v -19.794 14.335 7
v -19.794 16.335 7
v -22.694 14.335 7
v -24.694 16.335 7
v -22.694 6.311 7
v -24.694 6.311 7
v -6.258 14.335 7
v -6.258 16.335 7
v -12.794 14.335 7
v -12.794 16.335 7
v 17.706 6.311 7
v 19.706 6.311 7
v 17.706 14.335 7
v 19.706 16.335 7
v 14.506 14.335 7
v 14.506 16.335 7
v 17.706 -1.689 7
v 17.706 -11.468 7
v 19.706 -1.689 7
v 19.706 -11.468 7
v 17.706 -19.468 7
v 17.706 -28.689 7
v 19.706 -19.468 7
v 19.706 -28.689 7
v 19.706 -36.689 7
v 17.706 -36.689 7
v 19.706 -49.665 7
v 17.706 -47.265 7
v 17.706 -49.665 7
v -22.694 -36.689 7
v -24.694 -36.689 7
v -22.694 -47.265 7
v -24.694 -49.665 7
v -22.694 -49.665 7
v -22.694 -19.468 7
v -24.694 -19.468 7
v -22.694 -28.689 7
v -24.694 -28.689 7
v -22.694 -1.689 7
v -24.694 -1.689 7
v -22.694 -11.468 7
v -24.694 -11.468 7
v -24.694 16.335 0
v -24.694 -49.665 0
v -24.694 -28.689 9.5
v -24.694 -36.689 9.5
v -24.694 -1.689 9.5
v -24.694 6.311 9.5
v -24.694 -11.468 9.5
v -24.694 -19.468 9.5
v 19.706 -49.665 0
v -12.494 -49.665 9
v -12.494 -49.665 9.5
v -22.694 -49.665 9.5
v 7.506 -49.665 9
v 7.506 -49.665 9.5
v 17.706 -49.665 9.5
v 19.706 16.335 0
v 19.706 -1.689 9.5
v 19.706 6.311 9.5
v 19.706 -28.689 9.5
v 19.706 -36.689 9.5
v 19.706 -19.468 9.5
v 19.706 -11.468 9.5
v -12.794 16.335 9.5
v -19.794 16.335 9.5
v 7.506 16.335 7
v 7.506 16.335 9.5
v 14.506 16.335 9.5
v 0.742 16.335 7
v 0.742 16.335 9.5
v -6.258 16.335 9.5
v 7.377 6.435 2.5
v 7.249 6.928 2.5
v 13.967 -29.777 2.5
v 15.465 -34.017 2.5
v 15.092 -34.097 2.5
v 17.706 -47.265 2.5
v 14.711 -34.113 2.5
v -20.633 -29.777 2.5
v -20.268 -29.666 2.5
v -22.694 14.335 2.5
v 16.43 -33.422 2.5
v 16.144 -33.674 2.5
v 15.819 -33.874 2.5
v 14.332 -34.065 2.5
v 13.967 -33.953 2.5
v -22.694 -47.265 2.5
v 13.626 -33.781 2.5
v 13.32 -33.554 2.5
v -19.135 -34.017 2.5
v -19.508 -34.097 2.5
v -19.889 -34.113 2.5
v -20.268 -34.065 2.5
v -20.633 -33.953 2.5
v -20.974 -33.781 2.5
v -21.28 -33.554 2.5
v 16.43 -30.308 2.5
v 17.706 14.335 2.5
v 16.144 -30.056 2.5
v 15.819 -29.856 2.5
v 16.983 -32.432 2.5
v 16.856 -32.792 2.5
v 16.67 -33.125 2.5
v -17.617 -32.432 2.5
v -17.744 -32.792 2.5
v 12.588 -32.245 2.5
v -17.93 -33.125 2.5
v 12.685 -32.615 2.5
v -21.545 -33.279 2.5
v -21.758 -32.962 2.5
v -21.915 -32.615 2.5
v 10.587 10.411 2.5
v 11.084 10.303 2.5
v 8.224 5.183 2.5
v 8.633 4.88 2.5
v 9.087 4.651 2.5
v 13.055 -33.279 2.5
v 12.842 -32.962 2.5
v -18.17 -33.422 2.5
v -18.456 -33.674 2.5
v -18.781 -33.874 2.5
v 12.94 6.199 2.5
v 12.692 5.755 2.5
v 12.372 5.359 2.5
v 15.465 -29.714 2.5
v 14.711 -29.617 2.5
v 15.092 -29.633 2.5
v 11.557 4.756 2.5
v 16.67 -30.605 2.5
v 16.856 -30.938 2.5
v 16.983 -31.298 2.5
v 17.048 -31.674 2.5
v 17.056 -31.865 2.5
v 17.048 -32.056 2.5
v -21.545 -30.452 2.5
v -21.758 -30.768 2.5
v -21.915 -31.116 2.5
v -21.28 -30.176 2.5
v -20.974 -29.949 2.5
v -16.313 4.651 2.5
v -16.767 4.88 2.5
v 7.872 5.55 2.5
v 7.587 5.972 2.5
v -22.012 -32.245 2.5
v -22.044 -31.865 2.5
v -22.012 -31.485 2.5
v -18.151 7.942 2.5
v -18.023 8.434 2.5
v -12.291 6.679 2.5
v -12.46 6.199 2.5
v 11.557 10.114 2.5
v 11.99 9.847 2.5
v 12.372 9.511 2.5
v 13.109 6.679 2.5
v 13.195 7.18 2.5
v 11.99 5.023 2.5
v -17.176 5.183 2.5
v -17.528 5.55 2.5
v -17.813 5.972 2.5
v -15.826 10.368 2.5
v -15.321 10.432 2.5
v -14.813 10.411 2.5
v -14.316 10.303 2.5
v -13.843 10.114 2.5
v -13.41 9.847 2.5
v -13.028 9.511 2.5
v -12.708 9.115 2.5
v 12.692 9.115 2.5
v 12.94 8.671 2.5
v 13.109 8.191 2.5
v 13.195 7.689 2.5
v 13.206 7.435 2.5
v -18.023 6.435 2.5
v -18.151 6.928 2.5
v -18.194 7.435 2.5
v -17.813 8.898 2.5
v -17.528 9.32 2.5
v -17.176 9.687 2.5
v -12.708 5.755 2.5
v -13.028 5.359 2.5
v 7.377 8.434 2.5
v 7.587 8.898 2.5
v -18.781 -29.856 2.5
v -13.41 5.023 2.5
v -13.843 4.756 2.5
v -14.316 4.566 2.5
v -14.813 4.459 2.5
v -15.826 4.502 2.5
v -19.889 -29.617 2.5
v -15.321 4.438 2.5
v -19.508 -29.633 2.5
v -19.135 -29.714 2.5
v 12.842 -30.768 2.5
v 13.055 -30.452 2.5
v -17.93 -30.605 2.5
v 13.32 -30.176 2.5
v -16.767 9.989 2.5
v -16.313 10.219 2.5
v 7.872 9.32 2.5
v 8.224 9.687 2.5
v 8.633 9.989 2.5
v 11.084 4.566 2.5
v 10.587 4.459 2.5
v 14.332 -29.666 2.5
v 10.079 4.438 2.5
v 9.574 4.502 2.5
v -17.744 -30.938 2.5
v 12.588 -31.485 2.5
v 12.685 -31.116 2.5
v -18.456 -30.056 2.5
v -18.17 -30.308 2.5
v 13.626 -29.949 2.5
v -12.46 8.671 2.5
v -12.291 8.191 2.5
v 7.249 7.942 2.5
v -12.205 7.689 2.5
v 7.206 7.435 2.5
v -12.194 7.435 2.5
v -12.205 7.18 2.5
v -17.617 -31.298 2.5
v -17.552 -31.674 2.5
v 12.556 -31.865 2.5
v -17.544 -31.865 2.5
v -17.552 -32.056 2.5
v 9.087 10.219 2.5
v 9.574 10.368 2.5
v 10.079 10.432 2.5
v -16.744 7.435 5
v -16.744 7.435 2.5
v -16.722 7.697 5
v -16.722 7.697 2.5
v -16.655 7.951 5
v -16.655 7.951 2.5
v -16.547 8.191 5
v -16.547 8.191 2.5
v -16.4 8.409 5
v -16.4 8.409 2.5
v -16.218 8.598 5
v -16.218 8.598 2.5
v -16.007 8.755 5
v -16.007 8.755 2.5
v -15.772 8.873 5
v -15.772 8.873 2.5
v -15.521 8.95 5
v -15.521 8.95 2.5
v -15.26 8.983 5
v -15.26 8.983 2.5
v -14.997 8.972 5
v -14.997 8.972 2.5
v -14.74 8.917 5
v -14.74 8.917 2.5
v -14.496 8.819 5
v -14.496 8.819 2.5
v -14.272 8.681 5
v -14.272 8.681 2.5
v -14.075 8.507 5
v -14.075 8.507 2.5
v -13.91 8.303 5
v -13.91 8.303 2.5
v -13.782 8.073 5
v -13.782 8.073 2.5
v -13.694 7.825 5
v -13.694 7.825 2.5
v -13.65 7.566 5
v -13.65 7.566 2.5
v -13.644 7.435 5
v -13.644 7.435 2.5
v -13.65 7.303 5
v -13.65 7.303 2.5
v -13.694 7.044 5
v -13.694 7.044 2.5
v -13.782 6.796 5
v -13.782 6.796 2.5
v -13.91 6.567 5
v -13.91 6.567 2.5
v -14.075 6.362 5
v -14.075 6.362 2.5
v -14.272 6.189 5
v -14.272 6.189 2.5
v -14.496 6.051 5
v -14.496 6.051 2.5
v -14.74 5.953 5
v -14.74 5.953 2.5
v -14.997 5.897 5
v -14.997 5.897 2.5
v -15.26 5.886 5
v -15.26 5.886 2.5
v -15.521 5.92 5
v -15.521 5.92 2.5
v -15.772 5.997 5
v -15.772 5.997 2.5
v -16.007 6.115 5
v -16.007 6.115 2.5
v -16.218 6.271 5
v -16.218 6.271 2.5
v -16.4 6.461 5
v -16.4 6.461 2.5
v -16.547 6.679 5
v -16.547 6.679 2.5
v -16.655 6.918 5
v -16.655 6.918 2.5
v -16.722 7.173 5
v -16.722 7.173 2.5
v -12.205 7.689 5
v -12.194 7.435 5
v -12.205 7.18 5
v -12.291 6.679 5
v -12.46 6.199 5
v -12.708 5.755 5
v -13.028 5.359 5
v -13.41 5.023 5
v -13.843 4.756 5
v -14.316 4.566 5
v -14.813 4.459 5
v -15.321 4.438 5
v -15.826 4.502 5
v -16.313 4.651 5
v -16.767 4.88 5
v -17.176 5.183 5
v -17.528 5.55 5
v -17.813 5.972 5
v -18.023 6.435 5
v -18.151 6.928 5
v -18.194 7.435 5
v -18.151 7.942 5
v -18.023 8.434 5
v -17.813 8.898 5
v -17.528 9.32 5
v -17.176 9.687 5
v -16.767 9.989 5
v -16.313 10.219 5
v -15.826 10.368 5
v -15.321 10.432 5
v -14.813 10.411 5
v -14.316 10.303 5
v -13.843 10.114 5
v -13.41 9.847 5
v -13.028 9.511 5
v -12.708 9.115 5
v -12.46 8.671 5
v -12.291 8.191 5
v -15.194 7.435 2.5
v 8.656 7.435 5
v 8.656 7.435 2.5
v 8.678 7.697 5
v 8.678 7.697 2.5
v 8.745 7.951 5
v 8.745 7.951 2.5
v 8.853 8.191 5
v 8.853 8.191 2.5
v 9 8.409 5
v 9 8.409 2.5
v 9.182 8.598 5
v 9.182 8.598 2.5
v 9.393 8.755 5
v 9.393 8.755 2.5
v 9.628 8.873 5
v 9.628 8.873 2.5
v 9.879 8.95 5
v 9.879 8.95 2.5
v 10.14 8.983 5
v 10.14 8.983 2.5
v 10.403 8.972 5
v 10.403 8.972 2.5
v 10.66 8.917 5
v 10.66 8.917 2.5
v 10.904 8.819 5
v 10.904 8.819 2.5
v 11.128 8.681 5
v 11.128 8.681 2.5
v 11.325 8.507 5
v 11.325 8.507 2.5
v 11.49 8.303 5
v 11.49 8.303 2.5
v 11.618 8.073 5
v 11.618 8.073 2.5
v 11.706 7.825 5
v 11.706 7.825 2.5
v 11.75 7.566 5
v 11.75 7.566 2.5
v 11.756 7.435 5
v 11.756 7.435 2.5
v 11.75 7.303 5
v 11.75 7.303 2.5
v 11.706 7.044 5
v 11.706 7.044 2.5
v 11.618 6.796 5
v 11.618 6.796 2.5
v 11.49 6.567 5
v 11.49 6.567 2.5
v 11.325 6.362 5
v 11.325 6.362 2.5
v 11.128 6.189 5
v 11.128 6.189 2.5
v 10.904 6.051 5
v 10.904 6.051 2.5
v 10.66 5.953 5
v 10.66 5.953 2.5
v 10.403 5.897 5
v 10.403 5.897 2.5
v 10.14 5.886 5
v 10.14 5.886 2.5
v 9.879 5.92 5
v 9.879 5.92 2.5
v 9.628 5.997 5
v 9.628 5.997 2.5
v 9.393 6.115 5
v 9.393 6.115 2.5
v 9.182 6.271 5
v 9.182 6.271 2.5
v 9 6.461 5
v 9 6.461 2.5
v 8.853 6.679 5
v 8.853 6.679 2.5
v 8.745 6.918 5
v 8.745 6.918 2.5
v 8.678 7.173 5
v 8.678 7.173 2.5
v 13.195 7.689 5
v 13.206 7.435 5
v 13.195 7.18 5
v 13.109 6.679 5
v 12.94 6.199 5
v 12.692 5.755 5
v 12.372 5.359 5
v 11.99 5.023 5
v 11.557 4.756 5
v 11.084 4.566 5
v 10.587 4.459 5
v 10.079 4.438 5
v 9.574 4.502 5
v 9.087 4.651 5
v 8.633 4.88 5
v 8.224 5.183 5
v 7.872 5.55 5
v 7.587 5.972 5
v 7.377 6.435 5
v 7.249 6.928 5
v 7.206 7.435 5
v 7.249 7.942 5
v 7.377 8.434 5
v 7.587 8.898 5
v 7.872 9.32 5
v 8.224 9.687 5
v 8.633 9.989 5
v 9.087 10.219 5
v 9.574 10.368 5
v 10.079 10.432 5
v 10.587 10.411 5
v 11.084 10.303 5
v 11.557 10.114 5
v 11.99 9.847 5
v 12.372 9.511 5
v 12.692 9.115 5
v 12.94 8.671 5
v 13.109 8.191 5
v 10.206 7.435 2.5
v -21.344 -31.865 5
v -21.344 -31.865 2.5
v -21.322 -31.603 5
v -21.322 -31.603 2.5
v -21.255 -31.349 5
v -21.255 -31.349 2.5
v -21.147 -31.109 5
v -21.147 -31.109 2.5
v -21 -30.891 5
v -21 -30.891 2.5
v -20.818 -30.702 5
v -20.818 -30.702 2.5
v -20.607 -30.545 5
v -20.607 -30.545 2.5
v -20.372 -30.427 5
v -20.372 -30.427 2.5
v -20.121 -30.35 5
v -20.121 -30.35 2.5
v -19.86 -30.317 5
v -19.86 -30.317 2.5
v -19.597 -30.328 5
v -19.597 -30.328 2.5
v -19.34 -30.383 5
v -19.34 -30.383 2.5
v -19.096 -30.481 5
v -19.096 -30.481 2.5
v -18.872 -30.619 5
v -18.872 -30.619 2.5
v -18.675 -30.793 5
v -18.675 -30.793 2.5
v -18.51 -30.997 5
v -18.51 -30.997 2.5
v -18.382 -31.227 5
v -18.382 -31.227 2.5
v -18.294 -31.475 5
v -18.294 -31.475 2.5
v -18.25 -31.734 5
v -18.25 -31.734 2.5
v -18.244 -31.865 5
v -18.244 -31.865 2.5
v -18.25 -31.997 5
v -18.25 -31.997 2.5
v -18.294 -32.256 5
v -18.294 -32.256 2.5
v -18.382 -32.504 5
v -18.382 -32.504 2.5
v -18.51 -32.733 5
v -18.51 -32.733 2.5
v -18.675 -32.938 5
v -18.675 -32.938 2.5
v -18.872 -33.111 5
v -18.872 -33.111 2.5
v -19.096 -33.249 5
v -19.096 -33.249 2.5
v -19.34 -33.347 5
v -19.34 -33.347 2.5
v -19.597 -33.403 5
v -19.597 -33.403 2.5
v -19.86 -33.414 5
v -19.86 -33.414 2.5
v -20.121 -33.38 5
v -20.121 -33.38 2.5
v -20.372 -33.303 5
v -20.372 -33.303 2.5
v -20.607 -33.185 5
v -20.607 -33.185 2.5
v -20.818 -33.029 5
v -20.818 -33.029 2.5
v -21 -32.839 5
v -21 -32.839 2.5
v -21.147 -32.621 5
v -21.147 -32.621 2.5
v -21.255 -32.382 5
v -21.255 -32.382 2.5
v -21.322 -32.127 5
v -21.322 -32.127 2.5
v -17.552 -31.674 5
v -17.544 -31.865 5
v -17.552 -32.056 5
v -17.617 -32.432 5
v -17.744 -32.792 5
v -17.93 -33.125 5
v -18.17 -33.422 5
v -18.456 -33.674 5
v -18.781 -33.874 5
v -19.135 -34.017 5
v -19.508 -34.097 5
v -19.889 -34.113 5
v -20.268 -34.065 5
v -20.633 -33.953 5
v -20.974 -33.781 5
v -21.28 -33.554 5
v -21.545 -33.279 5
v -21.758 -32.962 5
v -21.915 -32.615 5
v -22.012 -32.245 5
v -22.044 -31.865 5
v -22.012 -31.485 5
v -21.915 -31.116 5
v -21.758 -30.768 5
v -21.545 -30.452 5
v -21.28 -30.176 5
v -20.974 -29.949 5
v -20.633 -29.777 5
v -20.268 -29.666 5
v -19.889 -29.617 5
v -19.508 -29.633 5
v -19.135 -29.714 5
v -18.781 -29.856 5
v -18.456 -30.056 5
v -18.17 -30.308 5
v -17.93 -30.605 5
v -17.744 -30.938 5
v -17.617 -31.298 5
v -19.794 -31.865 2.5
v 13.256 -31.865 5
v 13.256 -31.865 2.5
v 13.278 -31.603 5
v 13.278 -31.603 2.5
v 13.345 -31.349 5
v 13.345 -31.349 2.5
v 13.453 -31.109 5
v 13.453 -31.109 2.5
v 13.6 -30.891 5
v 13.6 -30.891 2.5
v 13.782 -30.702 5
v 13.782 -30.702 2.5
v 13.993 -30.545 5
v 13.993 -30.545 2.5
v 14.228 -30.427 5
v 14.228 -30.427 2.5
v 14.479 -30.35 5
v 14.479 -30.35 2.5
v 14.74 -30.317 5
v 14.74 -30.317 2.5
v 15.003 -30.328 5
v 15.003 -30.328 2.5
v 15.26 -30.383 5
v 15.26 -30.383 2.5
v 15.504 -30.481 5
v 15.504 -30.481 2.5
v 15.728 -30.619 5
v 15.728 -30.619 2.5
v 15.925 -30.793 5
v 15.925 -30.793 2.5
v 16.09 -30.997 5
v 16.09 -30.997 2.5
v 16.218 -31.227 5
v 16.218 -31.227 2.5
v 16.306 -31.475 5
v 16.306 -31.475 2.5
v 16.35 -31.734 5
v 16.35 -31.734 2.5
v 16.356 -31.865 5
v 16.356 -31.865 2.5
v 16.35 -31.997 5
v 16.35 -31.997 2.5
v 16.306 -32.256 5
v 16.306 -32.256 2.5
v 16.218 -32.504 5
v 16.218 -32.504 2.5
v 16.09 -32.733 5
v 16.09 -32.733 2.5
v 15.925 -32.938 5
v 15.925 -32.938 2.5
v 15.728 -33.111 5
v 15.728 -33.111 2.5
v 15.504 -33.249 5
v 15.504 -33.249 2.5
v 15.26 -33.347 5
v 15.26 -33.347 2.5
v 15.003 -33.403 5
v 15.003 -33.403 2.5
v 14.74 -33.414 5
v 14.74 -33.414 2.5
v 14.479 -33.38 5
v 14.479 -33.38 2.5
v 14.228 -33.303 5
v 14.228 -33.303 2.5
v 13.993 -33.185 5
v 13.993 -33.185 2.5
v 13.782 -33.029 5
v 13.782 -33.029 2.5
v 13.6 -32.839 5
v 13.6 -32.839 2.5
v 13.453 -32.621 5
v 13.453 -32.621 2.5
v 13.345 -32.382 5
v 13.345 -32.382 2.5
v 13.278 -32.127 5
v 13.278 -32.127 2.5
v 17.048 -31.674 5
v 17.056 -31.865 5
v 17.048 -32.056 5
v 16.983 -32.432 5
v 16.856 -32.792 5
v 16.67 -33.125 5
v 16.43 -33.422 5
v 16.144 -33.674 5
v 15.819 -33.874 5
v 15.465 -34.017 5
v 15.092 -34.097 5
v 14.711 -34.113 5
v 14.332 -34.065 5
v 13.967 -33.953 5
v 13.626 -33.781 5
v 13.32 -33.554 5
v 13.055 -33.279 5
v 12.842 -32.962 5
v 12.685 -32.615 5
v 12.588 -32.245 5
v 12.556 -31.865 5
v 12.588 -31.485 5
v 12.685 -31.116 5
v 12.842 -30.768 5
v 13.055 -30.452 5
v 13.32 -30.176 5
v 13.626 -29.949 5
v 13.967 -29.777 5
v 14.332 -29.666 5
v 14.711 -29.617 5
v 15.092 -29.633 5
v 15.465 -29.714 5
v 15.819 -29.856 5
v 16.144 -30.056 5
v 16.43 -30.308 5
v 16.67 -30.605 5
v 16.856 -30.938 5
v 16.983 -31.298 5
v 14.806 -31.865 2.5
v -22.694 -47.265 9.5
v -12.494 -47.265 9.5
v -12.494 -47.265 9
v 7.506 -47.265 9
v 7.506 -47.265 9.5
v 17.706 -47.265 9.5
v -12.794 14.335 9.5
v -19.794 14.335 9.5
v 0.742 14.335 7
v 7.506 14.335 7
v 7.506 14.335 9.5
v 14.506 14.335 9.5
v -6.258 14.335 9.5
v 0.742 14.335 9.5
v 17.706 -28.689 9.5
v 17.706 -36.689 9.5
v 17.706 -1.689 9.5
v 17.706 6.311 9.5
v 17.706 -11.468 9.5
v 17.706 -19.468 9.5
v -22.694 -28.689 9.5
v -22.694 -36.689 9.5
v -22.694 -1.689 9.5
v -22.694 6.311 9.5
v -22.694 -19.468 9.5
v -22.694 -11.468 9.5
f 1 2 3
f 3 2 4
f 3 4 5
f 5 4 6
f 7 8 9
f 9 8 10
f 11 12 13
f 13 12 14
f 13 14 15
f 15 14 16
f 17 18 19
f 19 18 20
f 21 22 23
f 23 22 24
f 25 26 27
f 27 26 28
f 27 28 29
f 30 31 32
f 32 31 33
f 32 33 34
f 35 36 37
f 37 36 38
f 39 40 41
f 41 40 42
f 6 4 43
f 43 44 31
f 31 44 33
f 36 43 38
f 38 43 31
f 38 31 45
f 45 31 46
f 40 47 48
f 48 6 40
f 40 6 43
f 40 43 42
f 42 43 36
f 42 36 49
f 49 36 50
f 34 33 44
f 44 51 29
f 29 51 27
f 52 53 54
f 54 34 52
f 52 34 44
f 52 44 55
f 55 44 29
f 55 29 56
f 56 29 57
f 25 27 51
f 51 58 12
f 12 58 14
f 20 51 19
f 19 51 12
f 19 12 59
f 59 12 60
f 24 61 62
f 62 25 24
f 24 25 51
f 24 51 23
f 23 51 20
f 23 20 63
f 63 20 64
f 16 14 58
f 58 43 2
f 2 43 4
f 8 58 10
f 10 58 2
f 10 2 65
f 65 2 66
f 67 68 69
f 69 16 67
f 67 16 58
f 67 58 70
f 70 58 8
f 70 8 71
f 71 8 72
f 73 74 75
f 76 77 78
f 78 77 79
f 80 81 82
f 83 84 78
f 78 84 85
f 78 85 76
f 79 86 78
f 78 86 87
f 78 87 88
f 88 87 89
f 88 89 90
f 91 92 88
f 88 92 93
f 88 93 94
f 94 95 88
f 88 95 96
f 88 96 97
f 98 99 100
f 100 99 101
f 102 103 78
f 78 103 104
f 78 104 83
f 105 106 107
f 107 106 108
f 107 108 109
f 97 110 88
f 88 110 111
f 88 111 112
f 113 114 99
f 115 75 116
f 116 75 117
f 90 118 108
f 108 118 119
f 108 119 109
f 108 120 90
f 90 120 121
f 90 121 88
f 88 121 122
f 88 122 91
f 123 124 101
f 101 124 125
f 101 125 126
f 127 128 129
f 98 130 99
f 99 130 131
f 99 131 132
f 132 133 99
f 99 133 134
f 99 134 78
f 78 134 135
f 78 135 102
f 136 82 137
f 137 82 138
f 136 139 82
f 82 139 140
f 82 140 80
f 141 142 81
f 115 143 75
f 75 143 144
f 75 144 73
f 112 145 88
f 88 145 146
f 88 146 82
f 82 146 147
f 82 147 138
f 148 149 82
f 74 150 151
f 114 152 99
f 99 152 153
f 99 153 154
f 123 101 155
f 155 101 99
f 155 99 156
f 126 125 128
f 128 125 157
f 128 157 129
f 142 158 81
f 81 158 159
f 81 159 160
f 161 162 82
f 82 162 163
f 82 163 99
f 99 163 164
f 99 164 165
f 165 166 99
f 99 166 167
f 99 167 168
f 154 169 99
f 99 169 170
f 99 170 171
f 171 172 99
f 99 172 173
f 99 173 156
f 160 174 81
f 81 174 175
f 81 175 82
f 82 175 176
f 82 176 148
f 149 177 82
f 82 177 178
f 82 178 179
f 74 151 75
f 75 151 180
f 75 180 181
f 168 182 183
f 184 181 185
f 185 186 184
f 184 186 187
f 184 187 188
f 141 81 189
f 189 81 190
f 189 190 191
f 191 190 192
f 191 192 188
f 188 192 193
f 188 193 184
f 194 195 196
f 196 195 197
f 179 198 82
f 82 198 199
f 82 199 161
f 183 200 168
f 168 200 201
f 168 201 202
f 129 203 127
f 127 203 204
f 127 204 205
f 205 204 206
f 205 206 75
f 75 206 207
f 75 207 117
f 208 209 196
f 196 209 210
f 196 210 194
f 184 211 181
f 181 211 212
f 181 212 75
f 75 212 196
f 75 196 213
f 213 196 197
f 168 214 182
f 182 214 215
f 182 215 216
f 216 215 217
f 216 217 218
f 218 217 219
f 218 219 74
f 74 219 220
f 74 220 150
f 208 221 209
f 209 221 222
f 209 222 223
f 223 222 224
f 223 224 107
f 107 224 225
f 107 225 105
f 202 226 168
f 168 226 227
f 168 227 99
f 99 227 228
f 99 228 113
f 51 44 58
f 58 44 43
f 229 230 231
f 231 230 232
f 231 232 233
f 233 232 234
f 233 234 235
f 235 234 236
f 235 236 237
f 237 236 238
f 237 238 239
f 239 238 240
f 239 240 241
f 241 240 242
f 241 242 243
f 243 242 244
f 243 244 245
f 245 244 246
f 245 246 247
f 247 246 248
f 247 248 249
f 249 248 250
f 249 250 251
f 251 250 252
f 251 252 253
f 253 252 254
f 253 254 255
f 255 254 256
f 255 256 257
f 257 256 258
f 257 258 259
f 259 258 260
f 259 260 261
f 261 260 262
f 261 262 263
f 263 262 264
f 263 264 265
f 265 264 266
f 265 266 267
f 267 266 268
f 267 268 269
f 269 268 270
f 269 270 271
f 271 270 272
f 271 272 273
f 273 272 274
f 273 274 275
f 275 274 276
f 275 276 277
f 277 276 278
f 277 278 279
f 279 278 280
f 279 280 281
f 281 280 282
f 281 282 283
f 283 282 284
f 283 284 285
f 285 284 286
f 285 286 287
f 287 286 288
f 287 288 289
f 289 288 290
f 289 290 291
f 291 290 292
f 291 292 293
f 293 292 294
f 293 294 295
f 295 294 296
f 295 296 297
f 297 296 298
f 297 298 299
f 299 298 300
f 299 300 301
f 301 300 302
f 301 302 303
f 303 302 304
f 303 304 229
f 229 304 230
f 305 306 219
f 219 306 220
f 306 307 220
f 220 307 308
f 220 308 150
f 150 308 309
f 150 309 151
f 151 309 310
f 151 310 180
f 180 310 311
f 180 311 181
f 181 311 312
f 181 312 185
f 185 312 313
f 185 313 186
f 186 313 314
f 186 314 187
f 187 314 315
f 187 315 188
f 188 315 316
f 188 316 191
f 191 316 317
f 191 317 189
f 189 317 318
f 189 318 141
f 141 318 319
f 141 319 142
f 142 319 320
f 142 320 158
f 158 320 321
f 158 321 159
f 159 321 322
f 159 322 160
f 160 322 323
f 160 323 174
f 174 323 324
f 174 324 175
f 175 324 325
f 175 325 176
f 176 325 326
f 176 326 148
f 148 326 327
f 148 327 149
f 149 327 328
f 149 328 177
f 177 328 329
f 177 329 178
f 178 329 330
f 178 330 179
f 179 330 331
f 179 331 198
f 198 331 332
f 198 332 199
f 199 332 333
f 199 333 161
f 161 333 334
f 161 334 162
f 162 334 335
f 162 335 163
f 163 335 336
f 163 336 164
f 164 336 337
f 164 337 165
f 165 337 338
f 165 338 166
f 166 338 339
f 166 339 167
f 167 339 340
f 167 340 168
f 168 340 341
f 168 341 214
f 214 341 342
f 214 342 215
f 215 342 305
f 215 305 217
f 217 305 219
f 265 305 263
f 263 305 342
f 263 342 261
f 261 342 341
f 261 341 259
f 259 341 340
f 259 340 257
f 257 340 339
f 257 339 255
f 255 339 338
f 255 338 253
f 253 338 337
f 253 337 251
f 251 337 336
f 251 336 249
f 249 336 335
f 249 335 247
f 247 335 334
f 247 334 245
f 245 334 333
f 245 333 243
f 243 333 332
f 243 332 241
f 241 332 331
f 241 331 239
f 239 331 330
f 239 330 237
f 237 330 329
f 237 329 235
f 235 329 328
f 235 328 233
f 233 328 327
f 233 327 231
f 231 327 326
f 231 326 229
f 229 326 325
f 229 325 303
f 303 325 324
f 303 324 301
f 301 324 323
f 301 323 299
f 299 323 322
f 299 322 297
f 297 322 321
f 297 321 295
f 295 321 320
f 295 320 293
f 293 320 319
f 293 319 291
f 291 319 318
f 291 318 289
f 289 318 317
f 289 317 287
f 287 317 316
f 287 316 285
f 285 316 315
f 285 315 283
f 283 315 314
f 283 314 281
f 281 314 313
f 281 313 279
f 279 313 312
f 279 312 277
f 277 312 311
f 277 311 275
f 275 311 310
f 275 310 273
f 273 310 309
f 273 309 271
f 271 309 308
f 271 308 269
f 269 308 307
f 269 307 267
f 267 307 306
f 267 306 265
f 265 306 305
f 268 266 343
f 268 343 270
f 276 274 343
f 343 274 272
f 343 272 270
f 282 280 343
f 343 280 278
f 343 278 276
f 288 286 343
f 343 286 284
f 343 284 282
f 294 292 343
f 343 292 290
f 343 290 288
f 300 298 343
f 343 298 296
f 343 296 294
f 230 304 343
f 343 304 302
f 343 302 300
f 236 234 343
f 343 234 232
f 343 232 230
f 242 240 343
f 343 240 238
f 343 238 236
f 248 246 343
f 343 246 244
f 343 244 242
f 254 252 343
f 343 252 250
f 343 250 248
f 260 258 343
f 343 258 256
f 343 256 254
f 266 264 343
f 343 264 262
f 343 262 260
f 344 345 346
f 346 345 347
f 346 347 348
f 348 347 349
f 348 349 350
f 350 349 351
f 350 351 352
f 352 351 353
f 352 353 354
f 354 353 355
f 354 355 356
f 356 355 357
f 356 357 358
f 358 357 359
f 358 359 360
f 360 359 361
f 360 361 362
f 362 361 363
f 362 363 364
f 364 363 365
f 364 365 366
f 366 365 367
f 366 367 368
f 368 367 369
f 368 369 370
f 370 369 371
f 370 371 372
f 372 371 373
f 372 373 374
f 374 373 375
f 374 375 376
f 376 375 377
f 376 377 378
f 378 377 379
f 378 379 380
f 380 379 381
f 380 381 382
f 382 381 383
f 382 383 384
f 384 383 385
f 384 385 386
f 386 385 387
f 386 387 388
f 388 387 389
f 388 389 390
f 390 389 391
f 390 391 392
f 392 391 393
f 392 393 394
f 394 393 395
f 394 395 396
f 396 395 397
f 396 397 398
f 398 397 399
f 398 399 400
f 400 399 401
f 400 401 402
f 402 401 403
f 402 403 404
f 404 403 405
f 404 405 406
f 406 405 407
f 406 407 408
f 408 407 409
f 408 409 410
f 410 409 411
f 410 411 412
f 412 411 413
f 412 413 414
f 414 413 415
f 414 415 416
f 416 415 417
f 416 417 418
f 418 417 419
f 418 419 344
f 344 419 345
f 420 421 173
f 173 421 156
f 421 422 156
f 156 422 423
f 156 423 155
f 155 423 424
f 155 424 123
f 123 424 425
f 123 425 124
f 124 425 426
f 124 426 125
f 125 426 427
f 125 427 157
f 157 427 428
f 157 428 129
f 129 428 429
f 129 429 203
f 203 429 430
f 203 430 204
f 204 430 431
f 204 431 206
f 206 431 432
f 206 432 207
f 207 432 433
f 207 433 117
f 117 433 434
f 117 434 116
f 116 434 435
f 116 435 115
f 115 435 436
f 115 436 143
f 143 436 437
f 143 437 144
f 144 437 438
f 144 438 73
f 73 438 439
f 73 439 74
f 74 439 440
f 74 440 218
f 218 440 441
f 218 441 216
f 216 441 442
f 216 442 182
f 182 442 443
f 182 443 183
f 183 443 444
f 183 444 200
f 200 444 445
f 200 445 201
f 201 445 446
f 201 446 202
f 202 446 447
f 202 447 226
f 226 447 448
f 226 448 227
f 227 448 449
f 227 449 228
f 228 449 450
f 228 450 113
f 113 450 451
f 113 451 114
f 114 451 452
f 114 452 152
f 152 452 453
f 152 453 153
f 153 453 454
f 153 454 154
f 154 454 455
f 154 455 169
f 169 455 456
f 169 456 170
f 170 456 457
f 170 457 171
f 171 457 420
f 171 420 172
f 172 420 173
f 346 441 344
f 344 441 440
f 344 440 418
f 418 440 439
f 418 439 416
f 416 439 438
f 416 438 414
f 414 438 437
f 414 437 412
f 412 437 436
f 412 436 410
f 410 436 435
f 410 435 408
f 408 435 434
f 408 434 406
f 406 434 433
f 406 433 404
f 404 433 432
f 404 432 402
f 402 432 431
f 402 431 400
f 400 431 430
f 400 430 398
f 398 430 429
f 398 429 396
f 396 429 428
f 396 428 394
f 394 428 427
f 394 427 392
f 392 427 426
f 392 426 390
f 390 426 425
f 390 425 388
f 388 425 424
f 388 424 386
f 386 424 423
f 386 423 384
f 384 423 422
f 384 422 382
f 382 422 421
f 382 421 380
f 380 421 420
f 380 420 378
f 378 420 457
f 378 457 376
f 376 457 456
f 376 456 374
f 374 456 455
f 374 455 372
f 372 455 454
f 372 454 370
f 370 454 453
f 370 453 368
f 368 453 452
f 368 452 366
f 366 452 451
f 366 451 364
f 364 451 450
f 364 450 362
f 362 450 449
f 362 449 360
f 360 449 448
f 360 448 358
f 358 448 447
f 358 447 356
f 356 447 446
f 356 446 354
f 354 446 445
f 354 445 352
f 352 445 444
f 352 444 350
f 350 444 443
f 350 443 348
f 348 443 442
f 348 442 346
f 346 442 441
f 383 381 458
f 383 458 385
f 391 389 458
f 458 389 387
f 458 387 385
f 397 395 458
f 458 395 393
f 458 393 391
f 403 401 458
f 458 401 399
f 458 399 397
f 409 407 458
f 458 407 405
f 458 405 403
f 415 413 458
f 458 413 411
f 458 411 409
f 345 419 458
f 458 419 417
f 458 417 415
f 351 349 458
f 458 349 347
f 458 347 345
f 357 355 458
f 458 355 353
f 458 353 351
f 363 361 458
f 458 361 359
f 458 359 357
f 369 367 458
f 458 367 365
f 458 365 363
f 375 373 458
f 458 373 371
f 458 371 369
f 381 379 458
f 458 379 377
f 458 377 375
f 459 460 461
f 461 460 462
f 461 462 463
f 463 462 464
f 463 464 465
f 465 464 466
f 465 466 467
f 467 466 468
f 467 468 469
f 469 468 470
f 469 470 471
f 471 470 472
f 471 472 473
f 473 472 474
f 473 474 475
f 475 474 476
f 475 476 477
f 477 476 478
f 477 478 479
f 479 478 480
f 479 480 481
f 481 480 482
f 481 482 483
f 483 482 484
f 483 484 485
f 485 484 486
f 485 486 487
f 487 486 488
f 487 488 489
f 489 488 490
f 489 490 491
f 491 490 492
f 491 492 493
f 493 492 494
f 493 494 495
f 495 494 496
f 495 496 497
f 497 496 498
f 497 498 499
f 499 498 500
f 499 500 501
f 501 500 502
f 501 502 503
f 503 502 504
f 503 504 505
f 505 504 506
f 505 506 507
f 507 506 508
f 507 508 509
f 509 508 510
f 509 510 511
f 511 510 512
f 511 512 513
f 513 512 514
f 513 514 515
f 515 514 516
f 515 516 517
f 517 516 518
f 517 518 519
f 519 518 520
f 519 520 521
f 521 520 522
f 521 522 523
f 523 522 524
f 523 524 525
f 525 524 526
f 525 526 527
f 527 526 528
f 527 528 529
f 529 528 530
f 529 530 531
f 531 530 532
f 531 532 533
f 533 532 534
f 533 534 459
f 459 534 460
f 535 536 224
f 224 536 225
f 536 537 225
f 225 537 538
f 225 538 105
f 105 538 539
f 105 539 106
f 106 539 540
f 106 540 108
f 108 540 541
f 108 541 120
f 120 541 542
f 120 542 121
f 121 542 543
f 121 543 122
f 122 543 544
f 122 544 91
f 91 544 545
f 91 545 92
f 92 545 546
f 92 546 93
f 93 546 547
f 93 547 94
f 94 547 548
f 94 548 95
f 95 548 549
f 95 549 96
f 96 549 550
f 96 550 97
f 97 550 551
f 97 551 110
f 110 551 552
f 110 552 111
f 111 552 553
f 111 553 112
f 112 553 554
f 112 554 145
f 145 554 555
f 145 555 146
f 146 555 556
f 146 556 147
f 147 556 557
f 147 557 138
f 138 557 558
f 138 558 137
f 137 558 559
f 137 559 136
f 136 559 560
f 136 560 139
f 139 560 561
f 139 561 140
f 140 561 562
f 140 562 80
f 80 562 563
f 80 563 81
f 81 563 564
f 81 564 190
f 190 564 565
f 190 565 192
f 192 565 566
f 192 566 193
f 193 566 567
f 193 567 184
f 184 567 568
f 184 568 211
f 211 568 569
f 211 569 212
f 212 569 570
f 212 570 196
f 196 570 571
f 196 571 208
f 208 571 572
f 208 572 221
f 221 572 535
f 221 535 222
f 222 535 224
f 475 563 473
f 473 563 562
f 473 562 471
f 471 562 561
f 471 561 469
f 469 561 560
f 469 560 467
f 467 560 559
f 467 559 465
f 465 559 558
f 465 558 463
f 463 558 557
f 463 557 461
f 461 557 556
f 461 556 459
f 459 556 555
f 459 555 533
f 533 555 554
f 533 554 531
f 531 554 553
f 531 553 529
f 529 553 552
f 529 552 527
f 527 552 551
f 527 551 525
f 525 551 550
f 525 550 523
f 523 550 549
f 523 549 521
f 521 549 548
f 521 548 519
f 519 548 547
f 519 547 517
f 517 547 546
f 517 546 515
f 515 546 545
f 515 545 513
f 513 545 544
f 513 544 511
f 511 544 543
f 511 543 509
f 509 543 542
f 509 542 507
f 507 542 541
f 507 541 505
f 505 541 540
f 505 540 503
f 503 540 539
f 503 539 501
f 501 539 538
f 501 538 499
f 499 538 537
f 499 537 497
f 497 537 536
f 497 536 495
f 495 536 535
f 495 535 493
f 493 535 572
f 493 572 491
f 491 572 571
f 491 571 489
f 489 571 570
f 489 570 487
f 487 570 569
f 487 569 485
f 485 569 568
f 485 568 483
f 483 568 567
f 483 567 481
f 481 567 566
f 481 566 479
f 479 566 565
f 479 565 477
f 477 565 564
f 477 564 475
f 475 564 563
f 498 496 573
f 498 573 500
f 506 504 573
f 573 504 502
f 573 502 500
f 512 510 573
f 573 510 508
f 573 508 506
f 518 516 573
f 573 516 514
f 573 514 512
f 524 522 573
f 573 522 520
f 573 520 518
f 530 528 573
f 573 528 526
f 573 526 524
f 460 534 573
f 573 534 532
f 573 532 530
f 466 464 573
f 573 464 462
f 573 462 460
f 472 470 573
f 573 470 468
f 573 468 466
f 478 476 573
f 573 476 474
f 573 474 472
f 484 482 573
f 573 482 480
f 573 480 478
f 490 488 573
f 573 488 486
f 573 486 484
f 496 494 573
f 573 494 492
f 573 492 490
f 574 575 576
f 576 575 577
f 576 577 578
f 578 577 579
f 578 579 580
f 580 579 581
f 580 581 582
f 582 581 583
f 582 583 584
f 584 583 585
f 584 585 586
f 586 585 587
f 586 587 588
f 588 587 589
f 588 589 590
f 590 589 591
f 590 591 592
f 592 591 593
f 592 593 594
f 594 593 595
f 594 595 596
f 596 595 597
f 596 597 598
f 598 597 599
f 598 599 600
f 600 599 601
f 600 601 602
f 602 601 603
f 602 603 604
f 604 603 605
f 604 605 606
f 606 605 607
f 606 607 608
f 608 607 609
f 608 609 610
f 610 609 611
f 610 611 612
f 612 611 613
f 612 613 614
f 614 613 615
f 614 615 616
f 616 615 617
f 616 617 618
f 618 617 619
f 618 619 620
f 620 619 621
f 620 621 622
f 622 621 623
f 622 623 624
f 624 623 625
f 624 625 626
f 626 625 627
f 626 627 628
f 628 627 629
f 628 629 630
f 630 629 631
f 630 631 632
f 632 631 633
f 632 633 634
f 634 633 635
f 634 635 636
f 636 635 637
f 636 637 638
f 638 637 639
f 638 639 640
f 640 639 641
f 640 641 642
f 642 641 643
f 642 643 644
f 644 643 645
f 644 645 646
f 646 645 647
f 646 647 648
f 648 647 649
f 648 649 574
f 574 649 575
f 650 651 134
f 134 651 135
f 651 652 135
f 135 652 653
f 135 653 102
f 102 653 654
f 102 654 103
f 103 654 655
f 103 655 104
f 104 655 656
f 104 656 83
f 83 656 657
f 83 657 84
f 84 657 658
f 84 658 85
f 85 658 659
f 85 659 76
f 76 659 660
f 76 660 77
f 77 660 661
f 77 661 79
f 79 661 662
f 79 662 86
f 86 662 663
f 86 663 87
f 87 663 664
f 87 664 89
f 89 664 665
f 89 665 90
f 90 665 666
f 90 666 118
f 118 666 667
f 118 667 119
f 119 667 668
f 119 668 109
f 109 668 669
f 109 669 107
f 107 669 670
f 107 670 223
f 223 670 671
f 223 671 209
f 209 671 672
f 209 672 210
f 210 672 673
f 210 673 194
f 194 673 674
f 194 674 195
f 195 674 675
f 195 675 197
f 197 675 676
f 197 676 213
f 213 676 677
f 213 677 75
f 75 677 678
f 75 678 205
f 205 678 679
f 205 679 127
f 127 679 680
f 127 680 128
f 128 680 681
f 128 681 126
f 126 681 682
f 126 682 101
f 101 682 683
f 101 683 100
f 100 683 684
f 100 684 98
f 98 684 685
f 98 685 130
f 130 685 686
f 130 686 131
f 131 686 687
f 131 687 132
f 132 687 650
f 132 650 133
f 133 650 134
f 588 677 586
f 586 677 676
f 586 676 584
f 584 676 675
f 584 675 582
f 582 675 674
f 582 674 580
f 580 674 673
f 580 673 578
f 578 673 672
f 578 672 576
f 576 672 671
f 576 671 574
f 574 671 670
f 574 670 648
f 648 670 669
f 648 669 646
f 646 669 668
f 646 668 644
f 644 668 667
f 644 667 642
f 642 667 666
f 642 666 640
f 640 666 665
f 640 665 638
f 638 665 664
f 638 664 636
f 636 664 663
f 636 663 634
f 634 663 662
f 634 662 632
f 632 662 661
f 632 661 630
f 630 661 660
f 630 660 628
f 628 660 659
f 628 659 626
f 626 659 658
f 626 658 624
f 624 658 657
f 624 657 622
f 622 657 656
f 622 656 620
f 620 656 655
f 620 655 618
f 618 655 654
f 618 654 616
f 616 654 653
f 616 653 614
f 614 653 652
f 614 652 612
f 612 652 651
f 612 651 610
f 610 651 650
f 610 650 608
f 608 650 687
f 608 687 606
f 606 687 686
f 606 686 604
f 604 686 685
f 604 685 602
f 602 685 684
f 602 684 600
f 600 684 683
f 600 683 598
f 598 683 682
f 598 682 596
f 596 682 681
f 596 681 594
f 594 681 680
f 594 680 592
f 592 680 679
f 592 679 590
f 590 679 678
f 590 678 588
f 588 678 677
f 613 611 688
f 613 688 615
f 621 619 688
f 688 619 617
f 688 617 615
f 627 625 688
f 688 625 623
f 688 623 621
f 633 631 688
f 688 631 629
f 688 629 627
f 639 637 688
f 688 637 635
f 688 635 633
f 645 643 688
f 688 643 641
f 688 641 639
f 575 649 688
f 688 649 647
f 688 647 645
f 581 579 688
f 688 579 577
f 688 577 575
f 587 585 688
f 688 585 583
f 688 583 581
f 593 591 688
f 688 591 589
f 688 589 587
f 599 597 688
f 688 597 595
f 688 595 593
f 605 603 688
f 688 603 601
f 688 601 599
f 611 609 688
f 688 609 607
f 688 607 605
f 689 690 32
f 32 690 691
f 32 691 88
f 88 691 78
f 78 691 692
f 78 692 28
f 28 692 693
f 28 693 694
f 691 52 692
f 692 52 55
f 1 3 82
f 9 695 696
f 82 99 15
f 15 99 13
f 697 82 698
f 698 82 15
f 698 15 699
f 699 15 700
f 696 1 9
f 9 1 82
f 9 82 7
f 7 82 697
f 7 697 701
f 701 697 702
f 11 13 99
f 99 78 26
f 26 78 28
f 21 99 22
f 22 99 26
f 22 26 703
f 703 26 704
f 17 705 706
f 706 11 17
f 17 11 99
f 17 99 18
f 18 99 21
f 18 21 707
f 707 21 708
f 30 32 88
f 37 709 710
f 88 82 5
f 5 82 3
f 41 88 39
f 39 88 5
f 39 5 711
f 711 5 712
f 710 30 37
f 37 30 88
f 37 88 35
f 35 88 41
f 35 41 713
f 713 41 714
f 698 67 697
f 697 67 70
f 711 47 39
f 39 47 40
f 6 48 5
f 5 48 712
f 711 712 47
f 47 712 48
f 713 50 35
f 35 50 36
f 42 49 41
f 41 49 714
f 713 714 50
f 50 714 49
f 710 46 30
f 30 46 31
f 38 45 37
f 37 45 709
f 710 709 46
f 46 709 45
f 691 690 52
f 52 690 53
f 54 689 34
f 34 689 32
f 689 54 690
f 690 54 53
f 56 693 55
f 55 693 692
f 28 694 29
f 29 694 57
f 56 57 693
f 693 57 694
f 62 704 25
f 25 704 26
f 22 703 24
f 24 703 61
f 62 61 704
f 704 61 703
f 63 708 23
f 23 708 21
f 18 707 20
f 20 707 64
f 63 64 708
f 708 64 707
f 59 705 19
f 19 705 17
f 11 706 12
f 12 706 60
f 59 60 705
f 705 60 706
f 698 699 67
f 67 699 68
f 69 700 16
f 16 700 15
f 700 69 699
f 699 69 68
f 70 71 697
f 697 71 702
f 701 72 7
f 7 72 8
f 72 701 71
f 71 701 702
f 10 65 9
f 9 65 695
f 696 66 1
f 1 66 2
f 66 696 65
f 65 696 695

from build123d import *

# Parameters (mm, degrees)
ESBO_O1_W                = 44.4
ESBO_O1_H                = 66
RESSALTO_EXTRUS_O1_DEPTH = 2.5
ESBO_O1_3_R              = 3
ESBO_O1_3_R_2            = 1.55
ESBO_O1_3_R_3            = 2.25
RESSALTO_EXTRUS_O2_DEPTH = 5
ESBO_O1_4_W              = 20
ESBO_O1_4_H              = 2.4
RESSALTO_EXTRUS_O3_DEPTH = 9
ESBO_O1_5_W              = 2
ESBO_O1_5_H              = 8
ESBO_O1_5_H_2            = 9.779719316
ESBO_O1_5_H_3            = 9.220608646
ESBO_O1_5_W_2            = 10.2
ESBO_O1_5_H_4            = 2.4
ESBO_O1_5_W_3            = 7
ESBO_O1_5_H_5            = 2
ESBO_O1_5_W_4            = 6.764123849
ESBO_O1_5_W_5            = 6.535876151
RESSALTO_EXTRUS_O4_DEPTH = 7
ESBO_O1_6_W              = 2
ESBO_O1_6_H              = 8
ESBO_O1_6_W_2            = 10.2
ESBO_O1_6_H_2            = 2.4
ESBO_O1_6_W_3            = 7
ESBO_O1_6_H_3            = 2
RESSALTO_EXTRUS_O5_DEPTH = 9.5


with BuildPart() as part:
    # Esboço1 → Ressalto-extrusão1 (new body)
    with BuildSketch(Plane.XY):
        with Locations((-2.493970888, -16.665150932)):
            Rectangle(ESBO_O1_W, ESBO_O1_H)
    extrude(amount=RESSALTO_EXTRUS_O1_DEPTH)

    # Esboço1<3> → Ressalto-extrusão2 (add)
    with BuildSketch(Plane.XY):
        with Locations((-15.193970888, 7.434849068)):
            Circle(ESBO_O1_3_R)
        with Locations((-15.193970888, 7.434849068)):
            Circle(ESBO_O1_3_R_2, mode=Mode.SUBTRACT)
        with Locations((10.206029112, 7.434849068)):
            Circle(ESBO_O1_3_R)
        with Locations((10.206029112, 7.434849068)):
            Circle(ESBO_O1_3_R_2, mode=Mode.SUBTRACT)
        with Locations((-19.793970888, -31.865150932)):
            Circle(ESBO_O1_3_R_3)
        with Locations((-19.793970888, -31.865150932)):
            Circle(ESBO_O1_3_R_2, mode=Mode.SUBTRACT)
        with Locations((14.806029112, -31.865150932)):
            Circle(ESBO_O1_3_R_3)
        with Locations((14.806029112, -31.865150932)):
            Circle(ESBO_O1_3_R_2, mode=Mode.SUBTRACT)
    extrude(amount=RESSALTO_EXTRUS_O2_DEPTH)

    # Esboço1<4> → Ressalto-extrusão3 (add)
    with BuildSketch(Plane.XY):
        with Locations((-2.493970888, -48.465150932)):
            Rectangle(ESBO_O1_4_W, ESBO_O1_4_H)
    extrude(amount=RESSALTO_EXTRUS_O3_DEPTH)

    # Esboço1<5> → Ressalto-extrusão4 (add)
    with BuildSketch(Plane.XY):
        Polygon((-24.693970888, 16.334849068), (-24.693970888, 6.311482938), (-22.693970888, 6.311482938), (-22.693970888, 14.334849068), (-19.793970888, 14.334849068), (-19.793970888, 16.334849068), align=None)
        with Locations((-23.693970888, 2.311482938)):
            Rectangle(ESBO_O1_5_W, ESBO_O1_5_H)
        with Locations((-23.693970888, -6.57837672)):
            Rectangle(ESBO_O1_5_W, ESBO_O1_5_H_2)
        with Locations((-23.693970888, -15.468236378)):
            Rectangle(ESBO_O1_5_W, ESBO_O1_5_H)
        with Locations((-23.693970888, -24.078540701)):
            Rectangle(ESBO_O1_5_W, ESBO_O1_5_H_3)
        with Locations((-23.693970888, -32.688845024)):
            Rectangle(ESBO_O1_5_W, ESBO_O1_5_H)
        Polygon((-24.693970888, -49.665150932), (-22.693970888, -49.665150932), (-22.693970888, -47.265150932), (-22.693970888, -36.688845024), (-24.693970888, -36.688845024), align=None)
        with Locations((-17.593970888, -48.465150932)):
            Rectangle(ESBO_O1_5_W_2, ESBO_O1_5_H_4)
        with Locations((12.606029112, -48.465150932)):
            Rectangle(ESBO_O1_5_W_2, ESBO_O1_5_H_4)
        Polygon((17.706029112, -47.265150932), (17.706029112, -49.665150932), (19.706029112, -49.665150932), (19.706029112, -36.688845024), (17.706029112, -36.688845024), align=None)
        with Locations((18.706029112, -32.688845024)):
            Rectangle(ESBO_O1_5_W, ESBO_O1_5_H)
        with Locations((18.706029112, -24.078540701)):
            Rectangle(ESBO_O1_5_W, ESBO_O1_5_H_3)
        with Locations((18.706029112, -15.468236378)):
            Rectangle(ESBO_O1_5_W, ESBO_O1_5_H)
        with Locations((18.706029112, -6.57837672)):
            Rectangle(ESBO_O1_5_W, ESBO_O1_5_H_2)
        with Locations((18.706029112, 2.311482938)):
            Rectangle(ESBO_O1_5_W, ESBO_O1_5_H)
        Polygon((17.706029112, 14.334849068), (17.706029112, 6.311482938), (19.706029112, 6.311482938), (19.706029112, 16.334849068), (14.506029112, 16.334849068), (14.506029112, 14.334849068), align=None)
        with Locations((11.006029112, 15.334849068)):
            Rectangle(ESBO_O1_5_W_3, ESBO_O1_5_H_5)
        with Locations((4.123967187, 15.334849068)):
            Rectangle(ESBO_O1_5_W_4, ESBO_O1_5_H_5)
        with Locations((-2.758094737, 15.334849068)):
            Rectangle(ESBO_O1_5_W_3, ESBO_O1_5_H_5)
        with Locations((-9.526032813, 15.334849068)):
            Rectangle(ESBO_O1_5_W_5, ESBO_O1_5_H_5)
        with Locations((-16.293970888, 15.334849068)):
            Rectangle(ESBO_O1_5_W_3, ESBO_O1_5_H_5)
    extrude(amount=RESSALTO_EXTRUS_O4_DEPTH)

    # Esboço1<6> → Ressalto-extrusão5 (add)
    with BuildSketch(Plane.XY):
        with Locations((-23.693970888, 2.311482938)):
            Rectangle(ESBO_O1_6_W, ESBO_O1_6_H)
        with Locations((-23.693970888, -15.468236378)):
            Rectangle(ESBO_O1_6_W, ESBO_O1_6_H)
        with Locations((-23.693970888, -32.688845024)):
            Rectangle(ESBO_O1_6_W, ESBO_O1_6_H)
        with Locations((-17.593970888, -48.465150932)):
            Rectangle(ESBO_O1_6_W_2, ESBO_O1_6_H_2)
        with Locations((12.606029112, -48.465150932)):
            Rectangle(ESBO_O1_6_W_2, ESBO_O1_6_H_2)
        with Locations((18.706029112, -32.688845024)):
            Rectangle(ESBO_O1_6_W, ESBO_O1_6_H)
        with Locations((18.706029112, -15.468236378)):
            Rectangle(ESBO_O1_6_W, ESBO_O1_6_H)
        with Locations((18.706029112, 2.311482938)):
            Rectangle(ESBO_O1_6_W, ESBO_O1_6_H)
        with Locations((11.006029112, 15.334849068)):
            Rectangle(ESBO_O1_6_W_3, ESBO_O1_6_H_3)
        with Locations((-2.758094737, 15.334849068)):
            Rectangle(ESBO_O1_6_W_3, ESBO_O1_6_H_3)
        with Locations((-16.293970888, 15.334849068)):
            Rectangle(ESBO_O1_6_W_3, ESBO_O1_6_H_3)
    extrude(amount=RESSALTO_EXTRUS_O5_DEPTH)


solid = part.part
